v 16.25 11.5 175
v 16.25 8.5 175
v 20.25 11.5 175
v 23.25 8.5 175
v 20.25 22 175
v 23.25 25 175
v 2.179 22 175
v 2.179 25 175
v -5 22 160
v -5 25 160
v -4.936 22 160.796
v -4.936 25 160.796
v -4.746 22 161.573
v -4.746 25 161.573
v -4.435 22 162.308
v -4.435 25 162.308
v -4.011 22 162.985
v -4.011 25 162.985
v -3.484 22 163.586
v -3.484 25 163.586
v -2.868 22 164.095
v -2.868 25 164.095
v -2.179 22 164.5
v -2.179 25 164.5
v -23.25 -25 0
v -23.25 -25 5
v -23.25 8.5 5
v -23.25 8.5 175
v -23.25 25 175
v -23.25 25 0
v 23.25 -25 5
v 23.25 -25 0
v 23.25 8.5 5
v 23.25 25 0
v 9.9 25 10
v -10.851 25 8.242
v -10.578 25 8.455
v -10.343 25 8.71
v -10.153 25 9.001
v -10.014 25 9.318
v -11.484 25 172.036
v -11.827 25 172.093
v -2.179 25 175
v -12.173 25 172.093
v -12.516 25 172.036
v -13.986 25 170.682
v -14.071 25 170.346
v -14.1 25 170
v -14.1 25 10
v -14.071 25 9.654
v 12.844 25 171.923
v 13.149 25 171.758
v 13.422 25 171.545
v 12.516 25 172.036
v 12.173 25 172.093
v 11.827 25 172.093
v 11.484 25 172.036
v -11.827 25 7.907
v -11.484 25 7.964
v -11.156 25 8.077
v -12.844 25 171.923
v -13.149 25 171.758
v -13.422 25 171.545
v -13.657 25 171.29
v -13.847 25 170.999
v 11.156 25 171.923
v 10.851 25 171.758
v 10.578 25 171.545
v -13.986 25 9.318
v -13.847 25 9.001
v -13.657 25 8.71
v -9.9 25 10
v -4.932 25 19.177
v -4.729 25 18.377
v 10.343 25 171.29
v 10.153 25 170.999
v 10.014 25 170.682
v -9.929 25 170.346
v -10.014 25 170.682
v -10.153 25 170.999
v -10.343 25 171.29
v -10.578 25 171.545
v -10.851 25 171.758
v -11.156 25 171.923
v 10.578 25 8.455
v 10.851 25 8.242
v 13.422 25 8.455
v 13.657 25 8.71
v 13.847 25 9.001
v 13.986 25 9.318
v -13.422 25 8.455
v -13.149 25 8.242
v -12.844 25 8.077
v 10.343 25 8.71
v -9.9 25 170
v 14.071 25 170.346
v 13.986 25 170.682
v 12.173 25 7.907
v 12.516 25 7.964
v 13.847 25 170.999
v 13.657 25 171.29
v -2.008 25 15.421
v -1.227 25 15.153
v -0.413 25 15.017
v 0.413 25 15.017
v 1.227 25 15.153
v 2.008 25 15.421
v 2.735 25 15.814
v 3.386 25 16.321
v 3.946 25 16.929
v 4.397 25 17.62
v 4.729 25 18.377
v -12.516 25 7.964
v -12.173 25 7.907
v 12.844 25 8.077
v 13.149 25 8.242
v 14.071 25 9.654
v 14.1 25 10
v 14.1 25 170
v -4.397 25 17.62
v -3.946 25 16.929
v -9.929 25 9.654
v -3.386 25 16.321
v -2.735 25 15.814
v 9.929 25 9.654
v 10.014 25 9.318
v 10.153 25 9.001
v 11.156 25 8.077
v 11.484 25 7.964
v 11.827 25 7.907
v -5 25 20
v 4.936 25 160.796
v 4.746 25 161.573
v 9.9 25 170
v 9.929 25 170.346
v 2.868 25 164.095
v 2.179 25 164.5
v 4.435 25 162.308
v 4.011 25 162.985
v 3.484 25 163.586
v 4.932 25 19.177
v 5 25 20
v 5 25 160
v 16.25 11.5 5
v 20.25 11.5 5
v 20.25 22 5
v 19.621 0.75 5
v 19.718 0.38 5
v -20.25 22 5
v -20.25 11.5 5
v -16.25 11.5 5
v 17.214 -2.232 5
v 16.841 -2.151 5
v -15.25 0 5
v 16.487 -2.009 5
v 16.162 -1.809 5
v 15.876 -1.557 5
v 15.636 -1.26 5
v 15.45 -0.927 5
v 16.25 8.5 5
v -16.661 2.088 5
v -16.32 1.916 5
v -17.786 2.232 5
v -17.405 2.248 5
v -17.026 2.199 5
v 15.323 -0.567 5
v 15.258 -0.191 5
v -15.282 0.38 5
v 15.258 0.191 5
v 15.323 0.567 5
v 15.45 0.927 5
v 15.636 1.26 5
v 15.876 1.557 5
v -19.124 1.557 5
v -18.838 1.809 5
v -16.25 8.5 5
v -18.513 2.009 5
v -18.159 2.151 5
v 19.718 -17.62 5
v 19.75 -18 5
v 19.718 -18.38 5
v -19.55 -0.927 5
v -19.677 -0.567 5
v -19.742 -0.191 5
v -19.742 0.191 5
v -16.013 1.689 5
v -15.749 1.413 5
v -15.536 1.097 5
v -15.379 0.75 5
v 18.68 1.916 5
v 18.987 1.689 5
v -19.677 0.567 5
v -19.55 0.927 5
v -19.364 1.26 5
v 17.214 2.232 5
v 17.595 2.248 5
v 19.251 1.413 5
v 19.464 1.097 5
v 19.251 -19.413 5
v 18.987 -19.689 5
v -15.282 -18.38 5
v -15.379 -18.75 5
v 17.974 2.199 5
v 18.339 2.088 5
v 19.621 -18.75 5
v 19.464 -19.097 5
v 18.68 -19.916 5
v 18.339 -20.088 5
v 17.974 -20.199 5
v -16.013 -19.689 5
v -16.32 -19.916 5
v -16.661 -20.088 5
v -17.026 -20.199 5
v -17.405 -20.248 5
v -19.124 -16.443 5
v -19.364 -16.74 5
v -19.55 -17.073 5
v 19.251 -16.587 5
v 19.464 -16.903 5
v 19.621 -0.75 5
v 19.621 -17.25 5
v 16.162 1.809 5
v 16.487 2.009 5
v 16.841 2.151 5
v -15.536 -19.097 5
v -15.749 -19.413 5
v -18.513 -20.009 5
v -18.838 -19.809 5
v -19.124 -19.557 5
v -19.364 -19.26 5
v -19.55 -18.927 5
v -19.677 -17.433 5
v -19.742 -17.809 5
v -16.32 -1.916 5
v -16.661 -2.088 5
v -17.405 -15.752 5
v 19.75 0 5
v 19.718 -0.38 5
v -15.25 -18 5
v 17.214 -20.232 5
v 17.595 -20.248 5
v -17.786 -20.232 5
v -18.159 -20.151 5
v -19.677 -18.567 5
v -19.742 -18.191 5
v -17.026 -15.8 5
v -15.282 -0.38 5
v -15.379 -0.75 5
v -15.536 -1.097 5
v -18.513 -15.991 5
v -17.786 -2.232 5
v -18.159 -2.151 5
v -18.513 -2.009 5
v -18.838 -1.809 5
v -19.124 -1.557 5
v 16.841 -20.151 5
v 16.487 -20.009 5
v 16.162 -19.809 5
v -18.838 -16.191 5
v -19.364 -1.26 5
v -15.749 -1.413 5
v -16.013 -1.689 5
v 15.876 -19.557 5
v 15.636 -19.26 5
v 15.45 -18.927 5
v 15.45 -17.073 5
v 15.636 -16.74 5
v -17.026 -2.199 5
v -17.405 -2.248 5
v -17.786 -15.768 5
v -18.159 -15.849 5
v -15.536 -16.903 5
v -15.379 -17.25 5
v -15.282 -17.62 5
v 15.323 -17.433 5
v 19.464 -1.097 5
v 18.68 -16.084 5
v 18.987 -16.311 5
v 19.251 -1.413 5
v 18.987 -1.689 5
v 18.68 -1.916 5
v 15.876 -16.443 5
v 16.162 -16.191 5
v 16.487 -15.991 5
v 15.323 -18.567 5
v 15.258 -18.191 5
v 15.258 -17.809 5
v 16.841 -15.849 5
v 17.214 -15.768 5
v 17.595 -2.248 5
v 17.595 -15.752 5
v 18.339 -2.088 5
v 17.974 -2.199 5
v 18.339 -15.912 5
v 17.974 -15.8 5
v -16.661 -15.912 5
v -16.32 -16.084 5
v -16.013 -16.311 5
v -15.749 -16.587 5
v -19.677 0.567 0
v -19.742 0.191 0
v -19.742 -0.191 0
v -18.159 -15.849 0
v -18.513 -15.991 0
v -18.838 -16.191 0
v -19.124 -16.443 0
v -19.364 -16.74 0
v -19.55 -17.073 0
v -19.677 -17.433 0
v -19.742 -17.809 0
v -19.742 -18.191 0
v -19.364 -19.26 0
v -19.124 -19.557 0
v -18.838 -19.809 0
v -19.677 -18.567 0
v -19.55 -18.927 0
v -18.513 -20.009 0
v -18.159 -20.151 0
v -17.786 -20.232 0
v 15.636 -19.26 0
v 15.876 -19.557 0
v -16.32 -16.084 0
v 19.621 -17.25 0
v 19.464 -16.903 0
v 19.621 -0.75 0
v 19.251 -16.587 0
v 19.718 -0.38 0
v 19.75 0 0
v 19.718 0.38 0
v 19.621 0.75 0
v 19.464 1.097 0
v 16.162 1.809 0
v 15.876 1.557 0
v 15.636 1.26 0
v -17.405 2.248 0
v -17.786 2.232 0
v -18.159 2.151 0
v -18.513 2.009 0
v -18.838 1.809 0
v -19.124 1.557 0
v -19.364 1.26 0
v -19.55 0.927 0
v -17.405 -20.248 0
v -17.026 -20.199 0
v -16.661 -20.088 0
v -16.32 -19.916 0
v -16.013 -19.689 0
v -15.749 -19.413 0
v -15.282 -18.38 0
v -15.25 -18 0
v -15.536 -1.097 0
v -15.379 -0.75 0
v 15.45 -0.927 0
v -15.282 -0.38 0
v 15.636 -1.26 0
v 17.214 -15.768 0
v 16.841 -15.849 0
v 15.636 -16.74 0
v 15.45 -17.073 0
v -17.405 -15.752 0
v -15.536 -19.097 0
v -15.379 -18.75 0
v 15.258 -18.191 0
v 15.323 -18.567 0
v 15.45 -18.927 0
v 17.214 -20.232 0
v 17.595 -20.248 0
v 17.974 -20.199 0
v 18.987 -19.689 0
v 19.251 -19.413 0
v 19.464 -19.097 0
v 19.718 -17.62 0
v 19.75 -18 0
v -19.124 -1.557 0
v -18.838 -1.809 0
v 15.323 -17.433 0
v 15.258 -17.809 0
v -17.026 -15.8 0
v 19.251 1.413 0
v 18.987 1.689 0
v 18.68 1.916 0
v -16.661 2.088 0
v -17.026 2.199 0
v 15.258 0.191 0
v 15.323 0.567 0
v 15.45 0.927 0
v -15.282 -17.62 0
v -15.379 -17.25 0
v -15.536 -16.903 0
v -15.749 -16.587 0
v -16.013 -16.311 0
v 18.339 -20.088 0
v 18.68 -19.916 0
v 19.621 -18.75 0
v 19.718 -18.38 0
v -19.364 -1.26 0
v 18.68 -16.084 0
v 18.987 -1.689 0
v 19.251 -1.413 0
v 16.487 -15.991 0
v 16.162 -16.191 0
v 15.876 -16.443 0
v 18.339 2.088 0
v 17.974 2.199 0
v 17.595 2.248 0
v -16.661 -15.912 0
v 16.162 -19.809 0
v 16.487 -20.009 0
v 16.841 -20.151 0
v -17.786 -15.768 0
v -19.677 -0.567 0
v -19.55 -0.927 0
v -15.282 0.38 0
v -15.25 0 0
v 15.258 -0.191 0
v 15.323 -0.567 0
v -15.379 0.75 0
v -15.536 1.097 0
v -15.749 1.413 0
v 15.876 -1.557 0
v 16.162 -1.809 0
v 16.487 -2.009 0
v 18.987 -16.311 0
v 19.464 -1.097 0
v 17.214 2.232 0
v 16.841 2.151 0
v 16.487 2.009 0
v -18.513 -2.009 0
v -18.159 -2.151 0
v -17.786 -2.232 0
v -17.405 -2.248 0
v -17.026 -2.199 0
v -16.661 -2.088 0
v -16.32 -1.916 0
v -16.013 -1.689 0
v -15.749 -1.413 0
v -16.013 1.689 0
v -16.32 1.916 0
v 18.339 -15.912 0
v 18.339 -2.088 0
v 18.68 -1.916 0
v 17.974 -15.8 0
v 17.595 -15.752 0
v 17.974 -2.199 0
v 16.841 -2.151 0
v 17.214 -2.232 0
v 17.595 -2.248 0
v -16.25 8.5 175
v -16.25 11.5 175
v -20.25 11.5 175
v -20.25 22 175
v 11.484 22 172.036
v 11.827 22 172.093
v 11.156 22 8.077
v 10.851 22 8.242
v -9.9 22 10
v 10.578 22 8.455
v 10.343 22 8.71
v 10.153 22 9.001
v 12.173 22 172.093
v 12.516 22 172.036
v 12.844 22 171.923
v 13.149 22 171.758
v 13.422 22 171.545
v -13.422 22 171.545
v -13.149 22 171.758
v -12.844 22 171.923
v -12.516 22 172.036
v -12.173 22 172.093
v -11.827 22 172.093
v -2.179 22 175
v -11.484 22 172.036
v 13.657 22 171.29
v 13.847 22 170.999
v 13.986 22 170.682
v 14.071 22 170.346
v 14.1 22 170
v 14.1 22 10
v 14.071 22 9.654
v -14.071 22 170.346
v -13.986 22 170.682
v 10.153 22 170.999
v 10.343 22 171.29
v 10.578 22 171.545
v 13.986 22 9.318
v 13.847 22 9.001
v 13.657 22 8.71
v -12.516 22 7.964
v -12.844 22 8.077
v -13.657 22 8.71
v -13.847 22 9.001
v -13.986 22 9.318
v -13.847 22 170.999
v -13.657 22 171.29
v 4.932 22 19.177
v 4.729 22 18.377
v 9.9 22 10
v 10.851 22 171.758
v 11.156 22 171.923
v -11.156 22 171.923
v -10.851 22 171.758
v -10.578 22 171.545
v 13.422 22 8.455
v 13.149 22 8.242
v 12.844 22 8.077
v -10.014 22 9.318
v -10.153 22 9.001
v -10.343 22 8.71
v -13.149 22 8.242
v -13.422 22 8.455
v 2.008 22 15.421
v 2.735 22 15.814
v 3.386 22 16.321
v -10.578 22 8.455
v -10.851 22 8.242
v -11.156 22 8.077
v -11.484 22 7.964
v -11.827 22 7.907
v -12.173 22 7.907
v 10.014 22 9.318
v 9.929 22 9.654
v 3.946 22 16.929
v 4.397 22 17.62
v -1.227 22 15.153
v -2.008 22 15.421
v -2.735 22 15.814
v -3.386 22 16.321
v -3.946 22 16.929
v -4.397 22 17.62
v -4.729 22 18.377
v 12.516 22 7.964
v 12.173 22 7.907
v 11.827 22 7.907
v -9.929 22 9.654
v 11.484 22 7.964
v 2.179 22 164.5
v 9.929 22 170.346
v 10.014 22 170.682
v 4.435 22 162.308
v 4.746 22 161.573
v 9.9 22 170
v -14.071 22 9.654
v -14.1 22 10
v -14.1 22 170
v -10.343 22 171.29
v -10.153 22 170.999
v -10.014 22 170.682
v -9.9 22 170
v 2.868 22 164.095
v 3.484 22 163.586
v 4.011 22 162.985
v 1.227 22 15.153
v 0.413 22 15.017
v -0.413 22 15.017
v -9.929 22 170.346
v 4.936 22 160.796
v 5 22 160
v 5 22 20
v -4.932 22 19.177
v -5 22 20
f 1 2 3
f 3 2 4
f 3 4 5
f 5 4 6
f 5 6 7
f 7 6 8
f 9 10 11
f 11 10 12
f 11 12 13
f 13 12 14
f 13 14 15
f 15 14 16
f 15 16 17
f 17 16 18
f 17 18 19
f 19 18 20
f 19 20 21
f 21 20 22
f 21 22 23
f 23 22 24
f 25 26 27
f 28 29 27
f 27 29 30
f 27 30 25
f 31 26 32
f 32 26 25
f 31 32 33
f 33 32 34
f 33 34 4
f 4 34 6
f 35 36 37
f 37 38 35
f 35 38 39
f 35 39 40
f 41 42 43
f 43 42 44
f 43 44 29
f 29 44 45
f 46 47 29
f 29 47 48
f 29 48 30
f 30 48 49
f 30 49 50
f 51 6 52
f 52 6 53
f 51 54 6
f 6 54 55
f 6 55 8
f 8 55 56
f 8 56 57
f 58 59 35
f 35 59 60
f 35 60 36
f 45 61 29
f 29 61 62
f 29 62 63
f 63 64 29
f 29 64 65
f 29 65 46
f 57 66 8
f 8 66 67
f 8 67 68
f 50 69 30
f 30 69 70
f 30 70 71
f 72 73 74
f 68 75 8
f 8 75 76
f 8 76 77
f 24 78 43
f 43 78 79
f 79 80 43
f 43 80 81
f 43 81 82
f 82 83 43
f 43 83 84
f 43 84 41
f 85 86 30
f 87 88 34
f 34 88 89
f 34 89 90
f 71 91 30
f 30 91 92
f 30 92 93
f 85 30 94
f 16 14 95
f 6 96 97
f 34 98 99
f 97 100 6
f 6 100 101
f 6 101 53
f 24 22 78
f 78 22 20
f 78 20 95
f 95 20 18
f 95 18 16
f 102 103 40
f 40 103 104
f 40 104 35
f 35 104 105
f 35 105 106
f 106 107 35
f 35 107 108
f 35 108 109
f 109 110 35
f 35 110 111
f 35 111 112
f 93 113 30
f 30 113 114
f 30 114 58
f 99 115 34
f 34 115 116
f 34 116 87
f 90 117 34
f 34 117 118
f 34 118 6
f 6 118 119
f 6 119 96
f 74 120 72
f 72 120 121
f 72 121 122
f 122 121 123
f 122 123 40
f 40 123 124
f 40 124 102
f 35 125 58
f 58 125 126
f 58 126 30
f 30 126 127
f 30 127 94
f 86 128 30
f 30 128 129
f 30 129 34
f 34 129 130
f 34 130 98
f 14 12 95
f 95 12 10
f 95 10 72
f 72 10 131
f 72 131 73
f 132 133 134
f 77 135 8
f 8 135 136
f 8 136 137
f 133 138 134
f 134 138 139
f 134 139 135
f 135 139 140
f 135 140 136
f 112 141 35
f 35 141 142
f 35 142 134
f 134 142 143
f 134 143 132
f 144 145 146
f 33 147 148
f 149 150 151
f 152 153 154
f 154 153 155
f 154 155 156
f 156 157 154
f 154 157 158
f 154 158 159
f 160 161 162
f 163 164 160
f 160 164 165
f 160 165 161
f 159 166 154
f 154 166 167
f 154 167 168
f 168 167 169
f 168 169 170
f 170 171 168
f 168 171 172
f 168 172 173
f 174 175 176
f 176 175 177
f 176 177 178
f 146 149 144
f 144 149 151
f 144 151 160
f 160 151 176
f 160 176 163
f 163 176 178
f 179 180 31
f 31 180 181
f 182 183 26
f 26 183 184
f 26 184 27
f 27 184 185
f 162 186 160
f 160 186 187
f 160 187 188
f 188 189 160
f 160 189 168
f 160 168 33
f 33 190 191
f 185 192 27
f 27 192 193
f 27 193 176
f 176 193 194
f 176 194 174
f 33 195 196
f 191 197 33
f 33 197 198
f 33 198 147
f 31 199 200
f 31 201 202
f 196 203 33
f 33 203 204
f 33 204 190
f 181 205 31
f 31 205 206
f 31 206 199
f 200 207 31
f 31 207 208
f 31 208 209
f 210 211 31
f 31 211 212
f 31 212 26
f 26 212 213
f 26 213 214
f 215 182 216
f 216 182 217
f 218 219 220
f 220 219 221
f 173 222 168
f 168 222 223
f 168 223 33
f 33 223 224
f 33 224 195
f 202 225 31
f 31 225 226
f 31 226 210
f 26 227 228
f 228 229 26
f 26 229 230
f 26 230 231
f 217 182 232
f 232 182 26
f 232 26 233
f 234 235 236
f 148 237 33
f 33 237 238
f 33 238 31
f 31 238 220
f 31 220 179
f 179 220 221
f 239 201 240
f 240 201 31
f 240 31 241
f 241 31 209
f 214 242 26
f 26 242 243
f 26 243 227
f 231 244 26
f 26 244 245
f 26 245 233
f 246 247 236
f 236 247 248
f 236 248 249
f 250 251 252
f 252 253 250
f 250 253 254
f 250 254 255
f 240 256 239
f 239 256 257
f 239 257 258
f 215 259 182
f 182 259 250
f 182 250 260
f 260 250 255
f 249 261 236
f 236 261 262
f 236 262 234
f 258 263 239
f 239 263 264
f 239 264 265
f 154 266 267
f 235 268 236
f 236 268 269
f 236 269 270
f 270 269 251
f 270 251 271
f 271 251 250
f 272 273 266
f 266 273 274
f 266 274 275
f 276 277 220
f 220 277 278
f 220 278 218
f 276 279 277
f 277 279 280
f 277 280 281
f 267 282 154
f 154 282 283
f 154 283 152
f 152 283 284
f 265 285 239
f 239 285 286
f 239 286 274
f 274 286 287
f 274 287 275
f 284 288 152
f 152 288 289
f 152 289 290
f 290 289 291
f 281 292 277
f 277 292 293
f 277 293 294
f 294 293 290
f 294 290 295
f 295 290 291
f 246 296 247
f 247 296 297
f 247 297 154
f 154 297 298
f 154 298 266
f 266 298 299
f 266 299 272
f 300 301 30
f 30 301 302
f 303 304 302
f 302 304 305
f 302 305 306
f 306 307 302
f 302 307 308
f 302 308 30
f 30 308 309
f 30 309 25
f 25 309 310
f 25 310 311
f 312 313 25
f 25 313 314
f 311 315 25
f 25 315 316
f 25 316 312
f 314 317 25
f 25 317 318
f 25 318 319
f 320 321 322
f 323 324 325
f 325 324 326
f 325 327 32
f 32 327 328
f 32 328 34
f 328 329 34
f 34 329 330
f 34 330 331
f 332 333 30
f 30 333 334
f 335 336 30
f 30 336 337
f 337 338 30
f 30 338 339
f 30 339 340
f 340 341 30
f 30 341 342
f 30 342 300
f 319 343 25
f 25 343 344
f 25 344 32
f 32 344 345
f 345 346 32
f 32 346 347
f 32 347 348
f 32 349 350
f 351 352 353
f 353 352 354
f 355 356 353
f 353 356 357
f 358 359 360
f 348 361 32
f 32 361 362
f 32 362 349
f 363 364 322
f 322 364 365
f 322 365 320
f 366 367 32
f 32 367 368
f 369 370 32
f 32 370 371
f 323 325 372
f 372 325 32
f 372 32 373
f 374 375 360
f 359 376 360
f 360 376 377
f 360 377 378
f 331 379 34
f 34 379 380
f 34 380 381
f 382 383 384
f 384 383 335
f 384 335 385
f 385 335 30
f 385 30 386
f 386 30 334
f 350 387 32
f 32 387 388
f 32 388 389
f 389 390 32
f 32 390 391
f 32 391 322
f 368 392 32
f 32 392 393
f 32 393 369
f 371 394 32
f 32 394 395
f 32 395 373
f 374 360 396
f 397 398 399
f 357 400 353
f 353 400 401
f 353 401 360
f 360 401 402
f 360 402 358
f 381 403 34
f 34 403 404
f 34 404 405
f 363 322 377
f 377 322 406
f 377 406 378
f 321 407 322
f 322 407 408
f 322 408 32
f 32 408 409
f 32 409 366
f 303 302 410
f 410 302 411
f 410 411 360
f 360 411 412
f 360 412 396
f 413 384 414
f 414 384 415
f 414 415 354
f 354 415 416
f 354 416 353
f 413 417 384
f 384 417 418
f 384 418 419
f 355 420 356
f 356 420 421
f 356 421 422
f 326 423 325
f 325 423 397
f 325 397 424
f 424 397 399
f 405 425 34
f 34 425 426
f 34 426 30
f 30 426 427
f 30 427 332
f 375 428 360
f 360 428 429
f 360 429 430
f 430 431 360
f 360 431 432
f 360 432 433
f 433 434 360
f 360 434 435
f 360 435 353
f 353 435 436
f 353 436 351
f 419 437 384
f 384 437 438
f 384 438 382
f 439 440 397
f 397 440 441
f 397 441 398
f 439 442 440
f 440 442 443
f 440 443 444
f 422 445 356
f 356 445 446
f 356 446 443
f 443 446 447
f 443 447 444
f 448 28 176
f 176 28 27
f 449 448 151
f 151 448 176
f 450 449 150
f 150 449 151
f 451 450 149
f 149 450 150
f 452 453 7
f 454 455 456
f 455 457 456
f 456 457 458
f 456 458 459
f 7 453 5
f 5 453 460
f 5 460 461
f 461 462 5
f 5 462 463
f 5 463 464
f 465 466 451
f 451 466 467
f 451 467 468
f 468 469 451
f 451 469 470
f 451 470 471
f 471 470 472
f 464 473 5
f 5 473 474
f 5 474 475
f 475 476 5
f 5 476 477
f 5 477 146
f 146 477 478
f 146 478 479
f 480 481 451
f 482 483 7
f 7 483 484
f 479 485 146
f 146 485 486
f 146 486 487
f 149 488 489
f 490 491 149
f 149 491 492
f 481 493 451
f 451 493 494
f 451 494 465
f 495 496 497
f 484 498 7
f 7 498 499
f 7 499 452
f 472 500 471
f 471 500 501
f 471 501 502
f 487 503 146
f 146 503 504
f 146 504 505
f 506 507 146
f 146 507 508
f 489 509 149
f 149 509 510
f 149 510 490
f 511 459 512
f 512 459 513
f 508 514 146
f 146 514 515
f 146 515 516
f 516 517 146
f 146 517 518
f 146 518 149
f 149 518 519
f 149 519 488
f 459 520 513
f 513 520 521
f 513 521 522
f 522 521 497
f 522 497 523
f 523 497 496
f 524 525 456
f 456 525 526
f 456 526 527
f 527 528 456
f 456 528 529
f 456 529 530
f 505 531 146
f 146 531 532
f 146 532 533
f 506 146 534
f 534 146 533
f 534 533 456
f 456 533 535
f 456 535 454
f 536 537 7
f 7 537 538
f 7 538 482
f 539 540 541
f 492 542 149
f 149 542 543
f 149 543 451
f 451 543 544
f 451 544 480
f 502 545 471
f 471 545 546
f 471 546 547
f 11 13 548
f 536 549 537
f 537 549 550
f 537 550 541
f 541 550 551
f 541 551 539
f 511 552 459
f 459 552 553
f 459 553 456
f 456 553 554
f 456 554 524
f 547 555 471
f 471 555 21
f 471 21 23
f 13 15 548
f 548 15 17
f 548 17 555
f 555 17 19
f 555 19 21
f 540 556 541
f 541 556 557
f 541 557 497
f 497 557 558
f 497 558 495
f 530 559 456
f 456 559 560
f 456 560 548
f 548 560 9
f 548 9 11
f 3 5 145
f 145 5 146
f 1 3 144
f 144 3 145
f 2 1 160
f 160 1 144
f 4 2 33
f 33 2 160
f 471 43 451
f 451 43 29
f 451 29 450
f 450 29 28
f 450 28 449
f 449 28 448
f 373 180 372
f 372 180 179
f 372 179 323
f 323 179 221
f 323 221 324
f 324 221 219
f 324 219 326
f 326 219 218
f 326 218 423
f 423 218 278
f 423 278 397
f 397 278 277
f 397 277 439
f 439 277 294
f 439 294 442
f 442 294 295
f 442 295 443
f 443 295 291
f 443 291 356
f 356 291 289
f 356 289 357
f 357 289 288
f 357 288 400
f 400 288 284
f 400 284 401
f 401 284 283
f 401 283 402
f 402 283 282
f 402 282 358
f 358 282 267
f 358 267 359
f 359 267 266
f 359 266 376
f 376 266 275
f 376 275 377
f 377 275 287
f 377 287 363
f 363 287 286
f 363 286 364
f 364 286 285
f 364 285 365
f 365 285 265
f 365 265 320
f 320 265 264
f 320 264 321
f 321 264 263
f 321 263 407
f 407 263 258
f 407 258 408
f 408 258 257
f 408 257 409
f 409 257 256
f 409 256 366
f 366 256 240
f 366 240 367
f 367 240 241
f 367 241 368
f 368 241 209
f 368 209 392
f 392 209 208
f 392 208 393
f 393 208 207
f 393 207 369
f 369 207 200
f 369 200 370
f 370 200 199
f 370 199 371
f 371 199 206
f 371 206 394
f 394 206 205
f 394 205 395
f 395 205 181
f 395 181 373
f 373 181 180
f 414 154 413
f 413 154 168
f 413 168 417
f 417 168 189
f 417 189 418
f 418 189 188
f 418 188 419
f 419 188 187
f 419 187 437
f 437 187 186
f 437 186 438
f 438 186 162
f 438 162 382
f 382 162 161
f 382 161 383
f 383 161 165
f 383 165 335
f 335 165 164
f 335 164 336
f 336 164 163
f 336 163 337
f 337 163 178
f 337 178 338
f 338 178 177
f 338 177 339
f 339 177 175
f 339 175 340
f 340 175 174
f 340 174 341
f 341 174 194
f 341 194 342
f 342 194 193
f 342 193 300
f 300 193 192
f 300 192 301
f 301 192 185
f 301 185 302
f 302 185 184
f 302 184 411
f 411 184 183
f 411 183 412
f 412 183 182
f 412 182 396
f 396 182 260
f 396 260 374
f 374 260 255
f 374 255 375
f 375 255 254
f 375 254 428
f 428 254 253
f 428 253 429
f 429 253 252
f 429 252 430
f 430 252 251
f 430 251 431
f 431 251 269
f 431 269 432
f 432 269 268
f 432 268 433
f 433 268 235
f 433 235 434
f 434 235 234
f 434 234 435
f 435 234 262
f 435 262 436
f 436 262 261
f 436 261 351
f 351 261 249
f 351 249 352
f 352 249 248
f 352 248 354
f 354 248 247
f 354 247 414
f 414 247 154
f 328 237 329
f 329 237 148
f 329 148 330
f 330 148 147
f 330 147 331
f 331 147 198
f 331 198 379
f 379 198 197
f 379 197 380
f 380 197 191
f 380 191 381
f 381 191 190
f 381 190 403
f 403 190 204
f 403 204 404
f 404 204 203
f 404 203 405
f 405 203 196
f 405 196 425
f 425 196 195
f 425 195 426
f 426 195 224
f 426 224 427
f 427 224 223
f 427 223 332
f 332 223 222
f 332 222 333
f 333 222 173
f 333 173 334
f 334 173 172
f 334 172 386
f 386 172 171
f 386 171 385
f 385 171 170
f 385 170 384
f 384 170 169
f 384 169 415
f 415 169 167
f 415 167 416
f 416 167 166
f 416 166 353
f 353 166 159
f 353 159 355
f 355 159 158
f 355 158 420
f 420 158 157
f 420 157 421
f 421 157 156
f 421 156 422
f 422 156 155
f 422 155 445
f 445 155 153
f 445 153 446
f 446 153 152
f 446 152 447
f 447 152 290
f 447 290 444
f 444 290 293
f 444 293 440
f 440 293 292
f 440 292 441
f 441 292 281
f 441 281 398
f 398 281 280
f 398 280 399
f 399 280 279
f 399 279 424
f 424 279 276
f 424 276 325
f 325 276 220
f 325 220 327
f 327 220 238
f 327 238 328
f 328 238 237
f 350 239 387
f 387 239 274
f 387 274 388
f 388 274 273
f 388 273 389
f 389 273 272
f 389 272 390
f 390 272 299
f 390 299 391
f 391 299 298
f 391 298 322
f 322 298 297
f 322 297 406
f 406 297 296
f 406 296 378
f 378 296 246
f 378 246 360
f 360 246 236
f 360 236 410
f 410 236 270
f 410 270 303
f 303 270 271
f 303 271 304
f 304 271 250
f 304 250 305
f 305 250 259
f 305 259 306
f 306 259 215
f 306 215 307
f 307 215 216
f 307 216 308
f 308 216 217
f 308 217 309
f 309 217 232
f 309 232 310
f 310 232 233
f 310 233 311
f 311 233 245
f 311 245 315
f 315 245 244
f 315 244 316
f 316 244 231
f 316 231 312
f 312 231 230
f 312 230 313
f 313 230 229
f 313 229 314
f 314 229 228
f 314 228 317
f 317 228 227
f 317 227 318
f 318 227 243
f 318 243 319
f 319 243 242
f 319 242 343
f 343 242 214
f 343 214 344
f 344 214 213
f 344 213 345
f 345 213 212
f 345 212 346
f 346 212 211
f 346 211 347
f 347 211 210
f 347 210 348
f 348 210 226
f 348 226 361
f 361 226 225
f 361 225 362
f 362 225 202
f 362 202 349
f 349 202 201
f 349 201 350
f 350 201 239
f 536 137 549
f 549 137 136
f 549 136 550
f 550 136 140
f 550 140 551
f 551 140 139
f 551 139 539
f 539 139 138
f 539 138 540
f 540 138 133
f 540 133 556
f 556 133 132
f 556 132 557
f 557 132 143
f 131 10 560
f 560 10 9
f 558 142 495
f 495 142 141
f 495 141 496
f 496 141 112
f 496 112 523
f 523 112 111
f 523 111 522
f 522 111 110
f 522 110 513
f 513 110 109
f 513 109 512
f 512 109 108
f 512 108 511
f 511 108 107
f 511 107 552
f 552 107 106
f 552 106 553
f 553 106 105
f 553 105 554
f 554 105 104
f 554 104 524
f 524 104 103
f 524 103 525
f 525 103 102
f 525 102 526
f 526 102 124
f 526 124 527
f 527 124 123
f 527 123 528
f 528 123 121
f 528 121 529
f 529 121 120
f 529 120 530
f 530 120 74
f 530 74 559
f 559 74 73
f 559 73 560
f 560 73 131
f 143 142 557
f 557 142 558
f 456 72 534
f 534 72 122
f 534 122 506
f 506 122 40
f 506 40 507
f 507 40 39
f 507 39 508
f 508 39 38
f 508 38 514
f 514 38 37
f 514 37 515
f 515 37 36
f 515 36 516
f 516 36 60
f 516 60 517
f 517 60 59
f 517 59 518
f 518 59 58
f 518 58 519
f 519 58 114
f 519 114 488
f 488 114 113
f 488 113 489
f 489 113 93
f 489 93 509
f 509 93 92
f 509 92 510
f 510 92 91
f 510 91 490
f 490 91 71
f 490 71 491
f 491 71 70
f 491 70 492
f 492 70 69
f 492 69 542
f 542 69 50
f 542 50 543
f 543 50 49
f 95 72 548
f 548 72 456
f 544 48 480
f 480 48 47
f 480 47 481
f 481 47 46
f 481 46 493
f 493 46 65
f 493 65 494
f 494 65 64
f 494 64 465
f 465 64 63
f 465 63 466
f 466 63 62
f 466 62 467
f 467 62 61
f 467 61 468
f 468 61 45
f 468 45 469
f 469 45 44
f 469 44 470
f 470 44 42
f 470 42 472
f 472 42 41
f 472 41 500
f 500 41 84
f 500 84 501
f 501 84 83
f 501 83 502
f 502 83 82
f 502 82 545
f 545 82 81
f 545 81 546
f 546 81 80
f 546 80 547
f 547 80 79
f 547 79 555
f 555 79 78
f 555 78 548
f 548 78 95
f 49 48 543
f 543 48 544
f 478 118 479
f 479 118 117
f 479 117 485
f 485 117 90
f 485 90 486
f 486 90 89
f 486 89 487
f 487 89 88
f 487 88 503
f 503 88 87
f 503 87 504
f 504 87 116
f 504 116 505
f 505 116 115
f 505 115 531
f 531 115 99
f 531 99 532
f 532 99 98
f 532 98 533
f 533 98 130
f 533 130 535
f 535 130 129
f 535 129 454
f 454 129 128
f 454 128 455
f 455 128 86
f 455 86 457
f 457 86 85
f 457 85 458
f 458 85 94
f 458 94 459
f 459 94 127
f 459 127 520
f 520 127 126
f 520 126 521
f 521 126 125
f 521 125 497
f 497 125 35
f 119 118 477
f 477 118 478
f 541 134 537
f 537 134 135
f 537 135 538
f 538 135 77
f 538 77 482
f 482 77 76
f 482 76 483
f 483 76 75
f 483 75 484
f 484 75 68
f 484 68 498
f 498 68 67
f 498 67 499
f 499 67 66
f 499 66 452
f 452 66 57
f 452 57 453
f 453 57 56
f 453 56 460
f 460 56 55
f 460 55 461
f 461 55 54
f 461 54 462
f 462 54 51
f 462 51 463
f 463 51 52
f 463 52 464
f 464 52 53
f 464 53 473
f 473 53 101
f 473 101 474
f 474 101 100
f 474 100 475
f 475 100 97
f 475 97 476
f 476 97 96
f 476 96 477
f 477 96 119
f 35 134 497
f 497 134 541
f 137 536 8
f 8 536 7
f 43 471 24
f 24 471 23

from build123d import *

# Parameters (mm, degrees)
ESQUISSE1_W              = 46.5
ESQUISSE1_H              = 50
BOSS_EXTRU_1_DEPTH       = 5
BOSS_EXTRU_2_DEPTH       = 170
D_GAGEMENT_M41_OUTLINE_R = 2.25
D_GAGEMENT_M41_DEPTH     = 5
ENL_V_MAT_EXTRU_3_REACH  = 185.482
ESQUISSE8_W              = 4.358898944
ESQUISSE8_H              = 10.5
ENL_V_MAT_EXTRU_4_DEPTH  = 5


# Read off the part's stored shape, not the designer's step: Dégagement M41
with BuildPart() as part:
    # Esquisse1 → Boss.-Extru.1 (new body)
    with BuildSketch(Plane.XY):
        Rectangle(ESQUISSE1_W, ESQUISSE1_H)
    extrude(amount=BOSS_EXTRU_1_DEPTH)

    # Esquisse2 → Boss.-Extru.2 (add)
    with BuildSketch(Plane.XY.offset(5)):
        Polygon((-23.25, 25), (23.25, 25), (23.25, 8.5), (16.25, 8.5), (16.25, 11.5), (20.25, 11.5), (20.25, 22), (-20.25, 22), (-20.25, 11.5), (-16.25, 11.5), (-16.25, 8.5), (-23.25, 8.5), align=None)
    extrude(amount=BOSS_EXTRU_2_DEPTH)

    # Dégagement M41 outline → Dégagement M41 (cut)
    with BuildSketch(Plane.XY):
        with Locations((17.5, -18)):
            Circle(D_GAGEMENT_M41_OUTLINE_R)
        with Locations((-17.5, 0)):
            Circle(D_GAGEMENT_M41_OUTLINE_R)
        with Locations((17.5, 0)):
            Circle(D_GAGEMENT_M41_OUTLINE_R)
        with Locations((-17.5, -18)):
            Circle(D_GAGEMENT_M41_OUTLINE_R)
    extrude(amount=D_GAGEMENT_M41_DEPTH, mode=Mode.SUBTRACT)

    # Esquisse5 → Enlèv. mat.-Extru.3 (cut, up to next)
    with BuildSketch(Plane(origin=(0, 25, 0), x_dir=(1, 0, 0), z_dir=(0, 1, 0)), mode=Mode.PRIVATE) as enl_v_mat_extru_3_sk1:
        with BuildLine():
            Line((14.1, -10), (14.1, -170))
            ThreePointArc((14.1, -170), (12, -172.1), (9.9, -170))
            Line((9.9, -170), (9.9, -10))
            ThreePointArc((9.9, -10), (12, -7.9), (14.1, -10))
        make_face()
    enl_v_mat_extru_3_tool1 = extrude(enl_v_mat_extru_3_sk1.sketch, amount=-ENL_V_MAT_EXTRU_3_REACH, mode=Mode.PRIVATE) & part.part
    # Esquisse5 → Enlèv. mat.-Extru.3 (cut, up to next)
    with BuildSketch(Plane(origin=(0, 25, 0), x_dir=(1, 0, 0), z_dir=(0, 1, 0)), mode=Mode.PRIVATE) as enl_v_mat_extru_3_sk2:
        with BuildLine():
            Line((-9.9, -10), (-9.9, -170))
            ThreePointArc((-9.9, -170), (-12, -172.1), (-14.1, -170))
            Line((-14.1, -170), (-14.1, -10))
            ThreePointArc((-14.1, -10), (-12, -7.9), (-9.9, -10))
        make_face()
    enl_v_mat_extru_3_tool2 = extrude(enl_v_mat_extru_3_sk2.sketch, amount=-ENL_V_MAT_EXTRU_3_REACH, mode=Mode.PRIVATE) & part.part
    # Esquisse5 → Enlèv. mat.-Extru.3 (cut, up to next)
    with BuildSketch(Plane(origin=(0, 25, 0), x_dir=(1, 0, 0), z_dir=(0, 1, 0)), mode=Mode.PRIVATE) as enl_v_mat_extru_3_sk3:
        with BuildLine():
            Line((-5, -160), (-5, -20))
            ThreePointArc((-5, -20), (0, -15), (5, -20))
            Line((5, -20), (5, -160))
            ThreePointArc((5, -160), (0, -165), (-5, -160))
        make_face()
    enl_v_mat_extru_3_tool3 = extrude(enl_v_mat_extru_3_sk3.sketch, amount=-ENL_V_MAT_EXTRU_3_REACH, mode=Mode.PRIVATE) & part.part
    add(enl_v_mat_extru_3_tool1.solids().sort_by_distance((12, 25, 90))[0], mode=Mode.SUBTRACT)
    add(enl_v_mat_extru_3_tool2.solids().sort_by_distance((-12, 25, 90))[0], mode=Mode.SUBTRACT)
    add(enl_v_mat_extru_3_tool3.solids().sort_by_distance((0, 25, 90))[0], mode=Mode.SUBTRACT)

    # Esquisse8 → Enlèv. mat.-Extru.4 (cut)
    with BuildSketch(Plane(origin=(0, 25, 0), x_dir=(1, 0, 0), z_dir=(0, 1, 0))):
        with Locations((0, -169.75)):
            Rectangle(ESQUISSE8_W, ESQUISSE8_H)
    extrude(amount=-ENL_V_MAT_EXTRU_4_DEPTH, mode=Mode.SUBTRACT)


solid = part.part
